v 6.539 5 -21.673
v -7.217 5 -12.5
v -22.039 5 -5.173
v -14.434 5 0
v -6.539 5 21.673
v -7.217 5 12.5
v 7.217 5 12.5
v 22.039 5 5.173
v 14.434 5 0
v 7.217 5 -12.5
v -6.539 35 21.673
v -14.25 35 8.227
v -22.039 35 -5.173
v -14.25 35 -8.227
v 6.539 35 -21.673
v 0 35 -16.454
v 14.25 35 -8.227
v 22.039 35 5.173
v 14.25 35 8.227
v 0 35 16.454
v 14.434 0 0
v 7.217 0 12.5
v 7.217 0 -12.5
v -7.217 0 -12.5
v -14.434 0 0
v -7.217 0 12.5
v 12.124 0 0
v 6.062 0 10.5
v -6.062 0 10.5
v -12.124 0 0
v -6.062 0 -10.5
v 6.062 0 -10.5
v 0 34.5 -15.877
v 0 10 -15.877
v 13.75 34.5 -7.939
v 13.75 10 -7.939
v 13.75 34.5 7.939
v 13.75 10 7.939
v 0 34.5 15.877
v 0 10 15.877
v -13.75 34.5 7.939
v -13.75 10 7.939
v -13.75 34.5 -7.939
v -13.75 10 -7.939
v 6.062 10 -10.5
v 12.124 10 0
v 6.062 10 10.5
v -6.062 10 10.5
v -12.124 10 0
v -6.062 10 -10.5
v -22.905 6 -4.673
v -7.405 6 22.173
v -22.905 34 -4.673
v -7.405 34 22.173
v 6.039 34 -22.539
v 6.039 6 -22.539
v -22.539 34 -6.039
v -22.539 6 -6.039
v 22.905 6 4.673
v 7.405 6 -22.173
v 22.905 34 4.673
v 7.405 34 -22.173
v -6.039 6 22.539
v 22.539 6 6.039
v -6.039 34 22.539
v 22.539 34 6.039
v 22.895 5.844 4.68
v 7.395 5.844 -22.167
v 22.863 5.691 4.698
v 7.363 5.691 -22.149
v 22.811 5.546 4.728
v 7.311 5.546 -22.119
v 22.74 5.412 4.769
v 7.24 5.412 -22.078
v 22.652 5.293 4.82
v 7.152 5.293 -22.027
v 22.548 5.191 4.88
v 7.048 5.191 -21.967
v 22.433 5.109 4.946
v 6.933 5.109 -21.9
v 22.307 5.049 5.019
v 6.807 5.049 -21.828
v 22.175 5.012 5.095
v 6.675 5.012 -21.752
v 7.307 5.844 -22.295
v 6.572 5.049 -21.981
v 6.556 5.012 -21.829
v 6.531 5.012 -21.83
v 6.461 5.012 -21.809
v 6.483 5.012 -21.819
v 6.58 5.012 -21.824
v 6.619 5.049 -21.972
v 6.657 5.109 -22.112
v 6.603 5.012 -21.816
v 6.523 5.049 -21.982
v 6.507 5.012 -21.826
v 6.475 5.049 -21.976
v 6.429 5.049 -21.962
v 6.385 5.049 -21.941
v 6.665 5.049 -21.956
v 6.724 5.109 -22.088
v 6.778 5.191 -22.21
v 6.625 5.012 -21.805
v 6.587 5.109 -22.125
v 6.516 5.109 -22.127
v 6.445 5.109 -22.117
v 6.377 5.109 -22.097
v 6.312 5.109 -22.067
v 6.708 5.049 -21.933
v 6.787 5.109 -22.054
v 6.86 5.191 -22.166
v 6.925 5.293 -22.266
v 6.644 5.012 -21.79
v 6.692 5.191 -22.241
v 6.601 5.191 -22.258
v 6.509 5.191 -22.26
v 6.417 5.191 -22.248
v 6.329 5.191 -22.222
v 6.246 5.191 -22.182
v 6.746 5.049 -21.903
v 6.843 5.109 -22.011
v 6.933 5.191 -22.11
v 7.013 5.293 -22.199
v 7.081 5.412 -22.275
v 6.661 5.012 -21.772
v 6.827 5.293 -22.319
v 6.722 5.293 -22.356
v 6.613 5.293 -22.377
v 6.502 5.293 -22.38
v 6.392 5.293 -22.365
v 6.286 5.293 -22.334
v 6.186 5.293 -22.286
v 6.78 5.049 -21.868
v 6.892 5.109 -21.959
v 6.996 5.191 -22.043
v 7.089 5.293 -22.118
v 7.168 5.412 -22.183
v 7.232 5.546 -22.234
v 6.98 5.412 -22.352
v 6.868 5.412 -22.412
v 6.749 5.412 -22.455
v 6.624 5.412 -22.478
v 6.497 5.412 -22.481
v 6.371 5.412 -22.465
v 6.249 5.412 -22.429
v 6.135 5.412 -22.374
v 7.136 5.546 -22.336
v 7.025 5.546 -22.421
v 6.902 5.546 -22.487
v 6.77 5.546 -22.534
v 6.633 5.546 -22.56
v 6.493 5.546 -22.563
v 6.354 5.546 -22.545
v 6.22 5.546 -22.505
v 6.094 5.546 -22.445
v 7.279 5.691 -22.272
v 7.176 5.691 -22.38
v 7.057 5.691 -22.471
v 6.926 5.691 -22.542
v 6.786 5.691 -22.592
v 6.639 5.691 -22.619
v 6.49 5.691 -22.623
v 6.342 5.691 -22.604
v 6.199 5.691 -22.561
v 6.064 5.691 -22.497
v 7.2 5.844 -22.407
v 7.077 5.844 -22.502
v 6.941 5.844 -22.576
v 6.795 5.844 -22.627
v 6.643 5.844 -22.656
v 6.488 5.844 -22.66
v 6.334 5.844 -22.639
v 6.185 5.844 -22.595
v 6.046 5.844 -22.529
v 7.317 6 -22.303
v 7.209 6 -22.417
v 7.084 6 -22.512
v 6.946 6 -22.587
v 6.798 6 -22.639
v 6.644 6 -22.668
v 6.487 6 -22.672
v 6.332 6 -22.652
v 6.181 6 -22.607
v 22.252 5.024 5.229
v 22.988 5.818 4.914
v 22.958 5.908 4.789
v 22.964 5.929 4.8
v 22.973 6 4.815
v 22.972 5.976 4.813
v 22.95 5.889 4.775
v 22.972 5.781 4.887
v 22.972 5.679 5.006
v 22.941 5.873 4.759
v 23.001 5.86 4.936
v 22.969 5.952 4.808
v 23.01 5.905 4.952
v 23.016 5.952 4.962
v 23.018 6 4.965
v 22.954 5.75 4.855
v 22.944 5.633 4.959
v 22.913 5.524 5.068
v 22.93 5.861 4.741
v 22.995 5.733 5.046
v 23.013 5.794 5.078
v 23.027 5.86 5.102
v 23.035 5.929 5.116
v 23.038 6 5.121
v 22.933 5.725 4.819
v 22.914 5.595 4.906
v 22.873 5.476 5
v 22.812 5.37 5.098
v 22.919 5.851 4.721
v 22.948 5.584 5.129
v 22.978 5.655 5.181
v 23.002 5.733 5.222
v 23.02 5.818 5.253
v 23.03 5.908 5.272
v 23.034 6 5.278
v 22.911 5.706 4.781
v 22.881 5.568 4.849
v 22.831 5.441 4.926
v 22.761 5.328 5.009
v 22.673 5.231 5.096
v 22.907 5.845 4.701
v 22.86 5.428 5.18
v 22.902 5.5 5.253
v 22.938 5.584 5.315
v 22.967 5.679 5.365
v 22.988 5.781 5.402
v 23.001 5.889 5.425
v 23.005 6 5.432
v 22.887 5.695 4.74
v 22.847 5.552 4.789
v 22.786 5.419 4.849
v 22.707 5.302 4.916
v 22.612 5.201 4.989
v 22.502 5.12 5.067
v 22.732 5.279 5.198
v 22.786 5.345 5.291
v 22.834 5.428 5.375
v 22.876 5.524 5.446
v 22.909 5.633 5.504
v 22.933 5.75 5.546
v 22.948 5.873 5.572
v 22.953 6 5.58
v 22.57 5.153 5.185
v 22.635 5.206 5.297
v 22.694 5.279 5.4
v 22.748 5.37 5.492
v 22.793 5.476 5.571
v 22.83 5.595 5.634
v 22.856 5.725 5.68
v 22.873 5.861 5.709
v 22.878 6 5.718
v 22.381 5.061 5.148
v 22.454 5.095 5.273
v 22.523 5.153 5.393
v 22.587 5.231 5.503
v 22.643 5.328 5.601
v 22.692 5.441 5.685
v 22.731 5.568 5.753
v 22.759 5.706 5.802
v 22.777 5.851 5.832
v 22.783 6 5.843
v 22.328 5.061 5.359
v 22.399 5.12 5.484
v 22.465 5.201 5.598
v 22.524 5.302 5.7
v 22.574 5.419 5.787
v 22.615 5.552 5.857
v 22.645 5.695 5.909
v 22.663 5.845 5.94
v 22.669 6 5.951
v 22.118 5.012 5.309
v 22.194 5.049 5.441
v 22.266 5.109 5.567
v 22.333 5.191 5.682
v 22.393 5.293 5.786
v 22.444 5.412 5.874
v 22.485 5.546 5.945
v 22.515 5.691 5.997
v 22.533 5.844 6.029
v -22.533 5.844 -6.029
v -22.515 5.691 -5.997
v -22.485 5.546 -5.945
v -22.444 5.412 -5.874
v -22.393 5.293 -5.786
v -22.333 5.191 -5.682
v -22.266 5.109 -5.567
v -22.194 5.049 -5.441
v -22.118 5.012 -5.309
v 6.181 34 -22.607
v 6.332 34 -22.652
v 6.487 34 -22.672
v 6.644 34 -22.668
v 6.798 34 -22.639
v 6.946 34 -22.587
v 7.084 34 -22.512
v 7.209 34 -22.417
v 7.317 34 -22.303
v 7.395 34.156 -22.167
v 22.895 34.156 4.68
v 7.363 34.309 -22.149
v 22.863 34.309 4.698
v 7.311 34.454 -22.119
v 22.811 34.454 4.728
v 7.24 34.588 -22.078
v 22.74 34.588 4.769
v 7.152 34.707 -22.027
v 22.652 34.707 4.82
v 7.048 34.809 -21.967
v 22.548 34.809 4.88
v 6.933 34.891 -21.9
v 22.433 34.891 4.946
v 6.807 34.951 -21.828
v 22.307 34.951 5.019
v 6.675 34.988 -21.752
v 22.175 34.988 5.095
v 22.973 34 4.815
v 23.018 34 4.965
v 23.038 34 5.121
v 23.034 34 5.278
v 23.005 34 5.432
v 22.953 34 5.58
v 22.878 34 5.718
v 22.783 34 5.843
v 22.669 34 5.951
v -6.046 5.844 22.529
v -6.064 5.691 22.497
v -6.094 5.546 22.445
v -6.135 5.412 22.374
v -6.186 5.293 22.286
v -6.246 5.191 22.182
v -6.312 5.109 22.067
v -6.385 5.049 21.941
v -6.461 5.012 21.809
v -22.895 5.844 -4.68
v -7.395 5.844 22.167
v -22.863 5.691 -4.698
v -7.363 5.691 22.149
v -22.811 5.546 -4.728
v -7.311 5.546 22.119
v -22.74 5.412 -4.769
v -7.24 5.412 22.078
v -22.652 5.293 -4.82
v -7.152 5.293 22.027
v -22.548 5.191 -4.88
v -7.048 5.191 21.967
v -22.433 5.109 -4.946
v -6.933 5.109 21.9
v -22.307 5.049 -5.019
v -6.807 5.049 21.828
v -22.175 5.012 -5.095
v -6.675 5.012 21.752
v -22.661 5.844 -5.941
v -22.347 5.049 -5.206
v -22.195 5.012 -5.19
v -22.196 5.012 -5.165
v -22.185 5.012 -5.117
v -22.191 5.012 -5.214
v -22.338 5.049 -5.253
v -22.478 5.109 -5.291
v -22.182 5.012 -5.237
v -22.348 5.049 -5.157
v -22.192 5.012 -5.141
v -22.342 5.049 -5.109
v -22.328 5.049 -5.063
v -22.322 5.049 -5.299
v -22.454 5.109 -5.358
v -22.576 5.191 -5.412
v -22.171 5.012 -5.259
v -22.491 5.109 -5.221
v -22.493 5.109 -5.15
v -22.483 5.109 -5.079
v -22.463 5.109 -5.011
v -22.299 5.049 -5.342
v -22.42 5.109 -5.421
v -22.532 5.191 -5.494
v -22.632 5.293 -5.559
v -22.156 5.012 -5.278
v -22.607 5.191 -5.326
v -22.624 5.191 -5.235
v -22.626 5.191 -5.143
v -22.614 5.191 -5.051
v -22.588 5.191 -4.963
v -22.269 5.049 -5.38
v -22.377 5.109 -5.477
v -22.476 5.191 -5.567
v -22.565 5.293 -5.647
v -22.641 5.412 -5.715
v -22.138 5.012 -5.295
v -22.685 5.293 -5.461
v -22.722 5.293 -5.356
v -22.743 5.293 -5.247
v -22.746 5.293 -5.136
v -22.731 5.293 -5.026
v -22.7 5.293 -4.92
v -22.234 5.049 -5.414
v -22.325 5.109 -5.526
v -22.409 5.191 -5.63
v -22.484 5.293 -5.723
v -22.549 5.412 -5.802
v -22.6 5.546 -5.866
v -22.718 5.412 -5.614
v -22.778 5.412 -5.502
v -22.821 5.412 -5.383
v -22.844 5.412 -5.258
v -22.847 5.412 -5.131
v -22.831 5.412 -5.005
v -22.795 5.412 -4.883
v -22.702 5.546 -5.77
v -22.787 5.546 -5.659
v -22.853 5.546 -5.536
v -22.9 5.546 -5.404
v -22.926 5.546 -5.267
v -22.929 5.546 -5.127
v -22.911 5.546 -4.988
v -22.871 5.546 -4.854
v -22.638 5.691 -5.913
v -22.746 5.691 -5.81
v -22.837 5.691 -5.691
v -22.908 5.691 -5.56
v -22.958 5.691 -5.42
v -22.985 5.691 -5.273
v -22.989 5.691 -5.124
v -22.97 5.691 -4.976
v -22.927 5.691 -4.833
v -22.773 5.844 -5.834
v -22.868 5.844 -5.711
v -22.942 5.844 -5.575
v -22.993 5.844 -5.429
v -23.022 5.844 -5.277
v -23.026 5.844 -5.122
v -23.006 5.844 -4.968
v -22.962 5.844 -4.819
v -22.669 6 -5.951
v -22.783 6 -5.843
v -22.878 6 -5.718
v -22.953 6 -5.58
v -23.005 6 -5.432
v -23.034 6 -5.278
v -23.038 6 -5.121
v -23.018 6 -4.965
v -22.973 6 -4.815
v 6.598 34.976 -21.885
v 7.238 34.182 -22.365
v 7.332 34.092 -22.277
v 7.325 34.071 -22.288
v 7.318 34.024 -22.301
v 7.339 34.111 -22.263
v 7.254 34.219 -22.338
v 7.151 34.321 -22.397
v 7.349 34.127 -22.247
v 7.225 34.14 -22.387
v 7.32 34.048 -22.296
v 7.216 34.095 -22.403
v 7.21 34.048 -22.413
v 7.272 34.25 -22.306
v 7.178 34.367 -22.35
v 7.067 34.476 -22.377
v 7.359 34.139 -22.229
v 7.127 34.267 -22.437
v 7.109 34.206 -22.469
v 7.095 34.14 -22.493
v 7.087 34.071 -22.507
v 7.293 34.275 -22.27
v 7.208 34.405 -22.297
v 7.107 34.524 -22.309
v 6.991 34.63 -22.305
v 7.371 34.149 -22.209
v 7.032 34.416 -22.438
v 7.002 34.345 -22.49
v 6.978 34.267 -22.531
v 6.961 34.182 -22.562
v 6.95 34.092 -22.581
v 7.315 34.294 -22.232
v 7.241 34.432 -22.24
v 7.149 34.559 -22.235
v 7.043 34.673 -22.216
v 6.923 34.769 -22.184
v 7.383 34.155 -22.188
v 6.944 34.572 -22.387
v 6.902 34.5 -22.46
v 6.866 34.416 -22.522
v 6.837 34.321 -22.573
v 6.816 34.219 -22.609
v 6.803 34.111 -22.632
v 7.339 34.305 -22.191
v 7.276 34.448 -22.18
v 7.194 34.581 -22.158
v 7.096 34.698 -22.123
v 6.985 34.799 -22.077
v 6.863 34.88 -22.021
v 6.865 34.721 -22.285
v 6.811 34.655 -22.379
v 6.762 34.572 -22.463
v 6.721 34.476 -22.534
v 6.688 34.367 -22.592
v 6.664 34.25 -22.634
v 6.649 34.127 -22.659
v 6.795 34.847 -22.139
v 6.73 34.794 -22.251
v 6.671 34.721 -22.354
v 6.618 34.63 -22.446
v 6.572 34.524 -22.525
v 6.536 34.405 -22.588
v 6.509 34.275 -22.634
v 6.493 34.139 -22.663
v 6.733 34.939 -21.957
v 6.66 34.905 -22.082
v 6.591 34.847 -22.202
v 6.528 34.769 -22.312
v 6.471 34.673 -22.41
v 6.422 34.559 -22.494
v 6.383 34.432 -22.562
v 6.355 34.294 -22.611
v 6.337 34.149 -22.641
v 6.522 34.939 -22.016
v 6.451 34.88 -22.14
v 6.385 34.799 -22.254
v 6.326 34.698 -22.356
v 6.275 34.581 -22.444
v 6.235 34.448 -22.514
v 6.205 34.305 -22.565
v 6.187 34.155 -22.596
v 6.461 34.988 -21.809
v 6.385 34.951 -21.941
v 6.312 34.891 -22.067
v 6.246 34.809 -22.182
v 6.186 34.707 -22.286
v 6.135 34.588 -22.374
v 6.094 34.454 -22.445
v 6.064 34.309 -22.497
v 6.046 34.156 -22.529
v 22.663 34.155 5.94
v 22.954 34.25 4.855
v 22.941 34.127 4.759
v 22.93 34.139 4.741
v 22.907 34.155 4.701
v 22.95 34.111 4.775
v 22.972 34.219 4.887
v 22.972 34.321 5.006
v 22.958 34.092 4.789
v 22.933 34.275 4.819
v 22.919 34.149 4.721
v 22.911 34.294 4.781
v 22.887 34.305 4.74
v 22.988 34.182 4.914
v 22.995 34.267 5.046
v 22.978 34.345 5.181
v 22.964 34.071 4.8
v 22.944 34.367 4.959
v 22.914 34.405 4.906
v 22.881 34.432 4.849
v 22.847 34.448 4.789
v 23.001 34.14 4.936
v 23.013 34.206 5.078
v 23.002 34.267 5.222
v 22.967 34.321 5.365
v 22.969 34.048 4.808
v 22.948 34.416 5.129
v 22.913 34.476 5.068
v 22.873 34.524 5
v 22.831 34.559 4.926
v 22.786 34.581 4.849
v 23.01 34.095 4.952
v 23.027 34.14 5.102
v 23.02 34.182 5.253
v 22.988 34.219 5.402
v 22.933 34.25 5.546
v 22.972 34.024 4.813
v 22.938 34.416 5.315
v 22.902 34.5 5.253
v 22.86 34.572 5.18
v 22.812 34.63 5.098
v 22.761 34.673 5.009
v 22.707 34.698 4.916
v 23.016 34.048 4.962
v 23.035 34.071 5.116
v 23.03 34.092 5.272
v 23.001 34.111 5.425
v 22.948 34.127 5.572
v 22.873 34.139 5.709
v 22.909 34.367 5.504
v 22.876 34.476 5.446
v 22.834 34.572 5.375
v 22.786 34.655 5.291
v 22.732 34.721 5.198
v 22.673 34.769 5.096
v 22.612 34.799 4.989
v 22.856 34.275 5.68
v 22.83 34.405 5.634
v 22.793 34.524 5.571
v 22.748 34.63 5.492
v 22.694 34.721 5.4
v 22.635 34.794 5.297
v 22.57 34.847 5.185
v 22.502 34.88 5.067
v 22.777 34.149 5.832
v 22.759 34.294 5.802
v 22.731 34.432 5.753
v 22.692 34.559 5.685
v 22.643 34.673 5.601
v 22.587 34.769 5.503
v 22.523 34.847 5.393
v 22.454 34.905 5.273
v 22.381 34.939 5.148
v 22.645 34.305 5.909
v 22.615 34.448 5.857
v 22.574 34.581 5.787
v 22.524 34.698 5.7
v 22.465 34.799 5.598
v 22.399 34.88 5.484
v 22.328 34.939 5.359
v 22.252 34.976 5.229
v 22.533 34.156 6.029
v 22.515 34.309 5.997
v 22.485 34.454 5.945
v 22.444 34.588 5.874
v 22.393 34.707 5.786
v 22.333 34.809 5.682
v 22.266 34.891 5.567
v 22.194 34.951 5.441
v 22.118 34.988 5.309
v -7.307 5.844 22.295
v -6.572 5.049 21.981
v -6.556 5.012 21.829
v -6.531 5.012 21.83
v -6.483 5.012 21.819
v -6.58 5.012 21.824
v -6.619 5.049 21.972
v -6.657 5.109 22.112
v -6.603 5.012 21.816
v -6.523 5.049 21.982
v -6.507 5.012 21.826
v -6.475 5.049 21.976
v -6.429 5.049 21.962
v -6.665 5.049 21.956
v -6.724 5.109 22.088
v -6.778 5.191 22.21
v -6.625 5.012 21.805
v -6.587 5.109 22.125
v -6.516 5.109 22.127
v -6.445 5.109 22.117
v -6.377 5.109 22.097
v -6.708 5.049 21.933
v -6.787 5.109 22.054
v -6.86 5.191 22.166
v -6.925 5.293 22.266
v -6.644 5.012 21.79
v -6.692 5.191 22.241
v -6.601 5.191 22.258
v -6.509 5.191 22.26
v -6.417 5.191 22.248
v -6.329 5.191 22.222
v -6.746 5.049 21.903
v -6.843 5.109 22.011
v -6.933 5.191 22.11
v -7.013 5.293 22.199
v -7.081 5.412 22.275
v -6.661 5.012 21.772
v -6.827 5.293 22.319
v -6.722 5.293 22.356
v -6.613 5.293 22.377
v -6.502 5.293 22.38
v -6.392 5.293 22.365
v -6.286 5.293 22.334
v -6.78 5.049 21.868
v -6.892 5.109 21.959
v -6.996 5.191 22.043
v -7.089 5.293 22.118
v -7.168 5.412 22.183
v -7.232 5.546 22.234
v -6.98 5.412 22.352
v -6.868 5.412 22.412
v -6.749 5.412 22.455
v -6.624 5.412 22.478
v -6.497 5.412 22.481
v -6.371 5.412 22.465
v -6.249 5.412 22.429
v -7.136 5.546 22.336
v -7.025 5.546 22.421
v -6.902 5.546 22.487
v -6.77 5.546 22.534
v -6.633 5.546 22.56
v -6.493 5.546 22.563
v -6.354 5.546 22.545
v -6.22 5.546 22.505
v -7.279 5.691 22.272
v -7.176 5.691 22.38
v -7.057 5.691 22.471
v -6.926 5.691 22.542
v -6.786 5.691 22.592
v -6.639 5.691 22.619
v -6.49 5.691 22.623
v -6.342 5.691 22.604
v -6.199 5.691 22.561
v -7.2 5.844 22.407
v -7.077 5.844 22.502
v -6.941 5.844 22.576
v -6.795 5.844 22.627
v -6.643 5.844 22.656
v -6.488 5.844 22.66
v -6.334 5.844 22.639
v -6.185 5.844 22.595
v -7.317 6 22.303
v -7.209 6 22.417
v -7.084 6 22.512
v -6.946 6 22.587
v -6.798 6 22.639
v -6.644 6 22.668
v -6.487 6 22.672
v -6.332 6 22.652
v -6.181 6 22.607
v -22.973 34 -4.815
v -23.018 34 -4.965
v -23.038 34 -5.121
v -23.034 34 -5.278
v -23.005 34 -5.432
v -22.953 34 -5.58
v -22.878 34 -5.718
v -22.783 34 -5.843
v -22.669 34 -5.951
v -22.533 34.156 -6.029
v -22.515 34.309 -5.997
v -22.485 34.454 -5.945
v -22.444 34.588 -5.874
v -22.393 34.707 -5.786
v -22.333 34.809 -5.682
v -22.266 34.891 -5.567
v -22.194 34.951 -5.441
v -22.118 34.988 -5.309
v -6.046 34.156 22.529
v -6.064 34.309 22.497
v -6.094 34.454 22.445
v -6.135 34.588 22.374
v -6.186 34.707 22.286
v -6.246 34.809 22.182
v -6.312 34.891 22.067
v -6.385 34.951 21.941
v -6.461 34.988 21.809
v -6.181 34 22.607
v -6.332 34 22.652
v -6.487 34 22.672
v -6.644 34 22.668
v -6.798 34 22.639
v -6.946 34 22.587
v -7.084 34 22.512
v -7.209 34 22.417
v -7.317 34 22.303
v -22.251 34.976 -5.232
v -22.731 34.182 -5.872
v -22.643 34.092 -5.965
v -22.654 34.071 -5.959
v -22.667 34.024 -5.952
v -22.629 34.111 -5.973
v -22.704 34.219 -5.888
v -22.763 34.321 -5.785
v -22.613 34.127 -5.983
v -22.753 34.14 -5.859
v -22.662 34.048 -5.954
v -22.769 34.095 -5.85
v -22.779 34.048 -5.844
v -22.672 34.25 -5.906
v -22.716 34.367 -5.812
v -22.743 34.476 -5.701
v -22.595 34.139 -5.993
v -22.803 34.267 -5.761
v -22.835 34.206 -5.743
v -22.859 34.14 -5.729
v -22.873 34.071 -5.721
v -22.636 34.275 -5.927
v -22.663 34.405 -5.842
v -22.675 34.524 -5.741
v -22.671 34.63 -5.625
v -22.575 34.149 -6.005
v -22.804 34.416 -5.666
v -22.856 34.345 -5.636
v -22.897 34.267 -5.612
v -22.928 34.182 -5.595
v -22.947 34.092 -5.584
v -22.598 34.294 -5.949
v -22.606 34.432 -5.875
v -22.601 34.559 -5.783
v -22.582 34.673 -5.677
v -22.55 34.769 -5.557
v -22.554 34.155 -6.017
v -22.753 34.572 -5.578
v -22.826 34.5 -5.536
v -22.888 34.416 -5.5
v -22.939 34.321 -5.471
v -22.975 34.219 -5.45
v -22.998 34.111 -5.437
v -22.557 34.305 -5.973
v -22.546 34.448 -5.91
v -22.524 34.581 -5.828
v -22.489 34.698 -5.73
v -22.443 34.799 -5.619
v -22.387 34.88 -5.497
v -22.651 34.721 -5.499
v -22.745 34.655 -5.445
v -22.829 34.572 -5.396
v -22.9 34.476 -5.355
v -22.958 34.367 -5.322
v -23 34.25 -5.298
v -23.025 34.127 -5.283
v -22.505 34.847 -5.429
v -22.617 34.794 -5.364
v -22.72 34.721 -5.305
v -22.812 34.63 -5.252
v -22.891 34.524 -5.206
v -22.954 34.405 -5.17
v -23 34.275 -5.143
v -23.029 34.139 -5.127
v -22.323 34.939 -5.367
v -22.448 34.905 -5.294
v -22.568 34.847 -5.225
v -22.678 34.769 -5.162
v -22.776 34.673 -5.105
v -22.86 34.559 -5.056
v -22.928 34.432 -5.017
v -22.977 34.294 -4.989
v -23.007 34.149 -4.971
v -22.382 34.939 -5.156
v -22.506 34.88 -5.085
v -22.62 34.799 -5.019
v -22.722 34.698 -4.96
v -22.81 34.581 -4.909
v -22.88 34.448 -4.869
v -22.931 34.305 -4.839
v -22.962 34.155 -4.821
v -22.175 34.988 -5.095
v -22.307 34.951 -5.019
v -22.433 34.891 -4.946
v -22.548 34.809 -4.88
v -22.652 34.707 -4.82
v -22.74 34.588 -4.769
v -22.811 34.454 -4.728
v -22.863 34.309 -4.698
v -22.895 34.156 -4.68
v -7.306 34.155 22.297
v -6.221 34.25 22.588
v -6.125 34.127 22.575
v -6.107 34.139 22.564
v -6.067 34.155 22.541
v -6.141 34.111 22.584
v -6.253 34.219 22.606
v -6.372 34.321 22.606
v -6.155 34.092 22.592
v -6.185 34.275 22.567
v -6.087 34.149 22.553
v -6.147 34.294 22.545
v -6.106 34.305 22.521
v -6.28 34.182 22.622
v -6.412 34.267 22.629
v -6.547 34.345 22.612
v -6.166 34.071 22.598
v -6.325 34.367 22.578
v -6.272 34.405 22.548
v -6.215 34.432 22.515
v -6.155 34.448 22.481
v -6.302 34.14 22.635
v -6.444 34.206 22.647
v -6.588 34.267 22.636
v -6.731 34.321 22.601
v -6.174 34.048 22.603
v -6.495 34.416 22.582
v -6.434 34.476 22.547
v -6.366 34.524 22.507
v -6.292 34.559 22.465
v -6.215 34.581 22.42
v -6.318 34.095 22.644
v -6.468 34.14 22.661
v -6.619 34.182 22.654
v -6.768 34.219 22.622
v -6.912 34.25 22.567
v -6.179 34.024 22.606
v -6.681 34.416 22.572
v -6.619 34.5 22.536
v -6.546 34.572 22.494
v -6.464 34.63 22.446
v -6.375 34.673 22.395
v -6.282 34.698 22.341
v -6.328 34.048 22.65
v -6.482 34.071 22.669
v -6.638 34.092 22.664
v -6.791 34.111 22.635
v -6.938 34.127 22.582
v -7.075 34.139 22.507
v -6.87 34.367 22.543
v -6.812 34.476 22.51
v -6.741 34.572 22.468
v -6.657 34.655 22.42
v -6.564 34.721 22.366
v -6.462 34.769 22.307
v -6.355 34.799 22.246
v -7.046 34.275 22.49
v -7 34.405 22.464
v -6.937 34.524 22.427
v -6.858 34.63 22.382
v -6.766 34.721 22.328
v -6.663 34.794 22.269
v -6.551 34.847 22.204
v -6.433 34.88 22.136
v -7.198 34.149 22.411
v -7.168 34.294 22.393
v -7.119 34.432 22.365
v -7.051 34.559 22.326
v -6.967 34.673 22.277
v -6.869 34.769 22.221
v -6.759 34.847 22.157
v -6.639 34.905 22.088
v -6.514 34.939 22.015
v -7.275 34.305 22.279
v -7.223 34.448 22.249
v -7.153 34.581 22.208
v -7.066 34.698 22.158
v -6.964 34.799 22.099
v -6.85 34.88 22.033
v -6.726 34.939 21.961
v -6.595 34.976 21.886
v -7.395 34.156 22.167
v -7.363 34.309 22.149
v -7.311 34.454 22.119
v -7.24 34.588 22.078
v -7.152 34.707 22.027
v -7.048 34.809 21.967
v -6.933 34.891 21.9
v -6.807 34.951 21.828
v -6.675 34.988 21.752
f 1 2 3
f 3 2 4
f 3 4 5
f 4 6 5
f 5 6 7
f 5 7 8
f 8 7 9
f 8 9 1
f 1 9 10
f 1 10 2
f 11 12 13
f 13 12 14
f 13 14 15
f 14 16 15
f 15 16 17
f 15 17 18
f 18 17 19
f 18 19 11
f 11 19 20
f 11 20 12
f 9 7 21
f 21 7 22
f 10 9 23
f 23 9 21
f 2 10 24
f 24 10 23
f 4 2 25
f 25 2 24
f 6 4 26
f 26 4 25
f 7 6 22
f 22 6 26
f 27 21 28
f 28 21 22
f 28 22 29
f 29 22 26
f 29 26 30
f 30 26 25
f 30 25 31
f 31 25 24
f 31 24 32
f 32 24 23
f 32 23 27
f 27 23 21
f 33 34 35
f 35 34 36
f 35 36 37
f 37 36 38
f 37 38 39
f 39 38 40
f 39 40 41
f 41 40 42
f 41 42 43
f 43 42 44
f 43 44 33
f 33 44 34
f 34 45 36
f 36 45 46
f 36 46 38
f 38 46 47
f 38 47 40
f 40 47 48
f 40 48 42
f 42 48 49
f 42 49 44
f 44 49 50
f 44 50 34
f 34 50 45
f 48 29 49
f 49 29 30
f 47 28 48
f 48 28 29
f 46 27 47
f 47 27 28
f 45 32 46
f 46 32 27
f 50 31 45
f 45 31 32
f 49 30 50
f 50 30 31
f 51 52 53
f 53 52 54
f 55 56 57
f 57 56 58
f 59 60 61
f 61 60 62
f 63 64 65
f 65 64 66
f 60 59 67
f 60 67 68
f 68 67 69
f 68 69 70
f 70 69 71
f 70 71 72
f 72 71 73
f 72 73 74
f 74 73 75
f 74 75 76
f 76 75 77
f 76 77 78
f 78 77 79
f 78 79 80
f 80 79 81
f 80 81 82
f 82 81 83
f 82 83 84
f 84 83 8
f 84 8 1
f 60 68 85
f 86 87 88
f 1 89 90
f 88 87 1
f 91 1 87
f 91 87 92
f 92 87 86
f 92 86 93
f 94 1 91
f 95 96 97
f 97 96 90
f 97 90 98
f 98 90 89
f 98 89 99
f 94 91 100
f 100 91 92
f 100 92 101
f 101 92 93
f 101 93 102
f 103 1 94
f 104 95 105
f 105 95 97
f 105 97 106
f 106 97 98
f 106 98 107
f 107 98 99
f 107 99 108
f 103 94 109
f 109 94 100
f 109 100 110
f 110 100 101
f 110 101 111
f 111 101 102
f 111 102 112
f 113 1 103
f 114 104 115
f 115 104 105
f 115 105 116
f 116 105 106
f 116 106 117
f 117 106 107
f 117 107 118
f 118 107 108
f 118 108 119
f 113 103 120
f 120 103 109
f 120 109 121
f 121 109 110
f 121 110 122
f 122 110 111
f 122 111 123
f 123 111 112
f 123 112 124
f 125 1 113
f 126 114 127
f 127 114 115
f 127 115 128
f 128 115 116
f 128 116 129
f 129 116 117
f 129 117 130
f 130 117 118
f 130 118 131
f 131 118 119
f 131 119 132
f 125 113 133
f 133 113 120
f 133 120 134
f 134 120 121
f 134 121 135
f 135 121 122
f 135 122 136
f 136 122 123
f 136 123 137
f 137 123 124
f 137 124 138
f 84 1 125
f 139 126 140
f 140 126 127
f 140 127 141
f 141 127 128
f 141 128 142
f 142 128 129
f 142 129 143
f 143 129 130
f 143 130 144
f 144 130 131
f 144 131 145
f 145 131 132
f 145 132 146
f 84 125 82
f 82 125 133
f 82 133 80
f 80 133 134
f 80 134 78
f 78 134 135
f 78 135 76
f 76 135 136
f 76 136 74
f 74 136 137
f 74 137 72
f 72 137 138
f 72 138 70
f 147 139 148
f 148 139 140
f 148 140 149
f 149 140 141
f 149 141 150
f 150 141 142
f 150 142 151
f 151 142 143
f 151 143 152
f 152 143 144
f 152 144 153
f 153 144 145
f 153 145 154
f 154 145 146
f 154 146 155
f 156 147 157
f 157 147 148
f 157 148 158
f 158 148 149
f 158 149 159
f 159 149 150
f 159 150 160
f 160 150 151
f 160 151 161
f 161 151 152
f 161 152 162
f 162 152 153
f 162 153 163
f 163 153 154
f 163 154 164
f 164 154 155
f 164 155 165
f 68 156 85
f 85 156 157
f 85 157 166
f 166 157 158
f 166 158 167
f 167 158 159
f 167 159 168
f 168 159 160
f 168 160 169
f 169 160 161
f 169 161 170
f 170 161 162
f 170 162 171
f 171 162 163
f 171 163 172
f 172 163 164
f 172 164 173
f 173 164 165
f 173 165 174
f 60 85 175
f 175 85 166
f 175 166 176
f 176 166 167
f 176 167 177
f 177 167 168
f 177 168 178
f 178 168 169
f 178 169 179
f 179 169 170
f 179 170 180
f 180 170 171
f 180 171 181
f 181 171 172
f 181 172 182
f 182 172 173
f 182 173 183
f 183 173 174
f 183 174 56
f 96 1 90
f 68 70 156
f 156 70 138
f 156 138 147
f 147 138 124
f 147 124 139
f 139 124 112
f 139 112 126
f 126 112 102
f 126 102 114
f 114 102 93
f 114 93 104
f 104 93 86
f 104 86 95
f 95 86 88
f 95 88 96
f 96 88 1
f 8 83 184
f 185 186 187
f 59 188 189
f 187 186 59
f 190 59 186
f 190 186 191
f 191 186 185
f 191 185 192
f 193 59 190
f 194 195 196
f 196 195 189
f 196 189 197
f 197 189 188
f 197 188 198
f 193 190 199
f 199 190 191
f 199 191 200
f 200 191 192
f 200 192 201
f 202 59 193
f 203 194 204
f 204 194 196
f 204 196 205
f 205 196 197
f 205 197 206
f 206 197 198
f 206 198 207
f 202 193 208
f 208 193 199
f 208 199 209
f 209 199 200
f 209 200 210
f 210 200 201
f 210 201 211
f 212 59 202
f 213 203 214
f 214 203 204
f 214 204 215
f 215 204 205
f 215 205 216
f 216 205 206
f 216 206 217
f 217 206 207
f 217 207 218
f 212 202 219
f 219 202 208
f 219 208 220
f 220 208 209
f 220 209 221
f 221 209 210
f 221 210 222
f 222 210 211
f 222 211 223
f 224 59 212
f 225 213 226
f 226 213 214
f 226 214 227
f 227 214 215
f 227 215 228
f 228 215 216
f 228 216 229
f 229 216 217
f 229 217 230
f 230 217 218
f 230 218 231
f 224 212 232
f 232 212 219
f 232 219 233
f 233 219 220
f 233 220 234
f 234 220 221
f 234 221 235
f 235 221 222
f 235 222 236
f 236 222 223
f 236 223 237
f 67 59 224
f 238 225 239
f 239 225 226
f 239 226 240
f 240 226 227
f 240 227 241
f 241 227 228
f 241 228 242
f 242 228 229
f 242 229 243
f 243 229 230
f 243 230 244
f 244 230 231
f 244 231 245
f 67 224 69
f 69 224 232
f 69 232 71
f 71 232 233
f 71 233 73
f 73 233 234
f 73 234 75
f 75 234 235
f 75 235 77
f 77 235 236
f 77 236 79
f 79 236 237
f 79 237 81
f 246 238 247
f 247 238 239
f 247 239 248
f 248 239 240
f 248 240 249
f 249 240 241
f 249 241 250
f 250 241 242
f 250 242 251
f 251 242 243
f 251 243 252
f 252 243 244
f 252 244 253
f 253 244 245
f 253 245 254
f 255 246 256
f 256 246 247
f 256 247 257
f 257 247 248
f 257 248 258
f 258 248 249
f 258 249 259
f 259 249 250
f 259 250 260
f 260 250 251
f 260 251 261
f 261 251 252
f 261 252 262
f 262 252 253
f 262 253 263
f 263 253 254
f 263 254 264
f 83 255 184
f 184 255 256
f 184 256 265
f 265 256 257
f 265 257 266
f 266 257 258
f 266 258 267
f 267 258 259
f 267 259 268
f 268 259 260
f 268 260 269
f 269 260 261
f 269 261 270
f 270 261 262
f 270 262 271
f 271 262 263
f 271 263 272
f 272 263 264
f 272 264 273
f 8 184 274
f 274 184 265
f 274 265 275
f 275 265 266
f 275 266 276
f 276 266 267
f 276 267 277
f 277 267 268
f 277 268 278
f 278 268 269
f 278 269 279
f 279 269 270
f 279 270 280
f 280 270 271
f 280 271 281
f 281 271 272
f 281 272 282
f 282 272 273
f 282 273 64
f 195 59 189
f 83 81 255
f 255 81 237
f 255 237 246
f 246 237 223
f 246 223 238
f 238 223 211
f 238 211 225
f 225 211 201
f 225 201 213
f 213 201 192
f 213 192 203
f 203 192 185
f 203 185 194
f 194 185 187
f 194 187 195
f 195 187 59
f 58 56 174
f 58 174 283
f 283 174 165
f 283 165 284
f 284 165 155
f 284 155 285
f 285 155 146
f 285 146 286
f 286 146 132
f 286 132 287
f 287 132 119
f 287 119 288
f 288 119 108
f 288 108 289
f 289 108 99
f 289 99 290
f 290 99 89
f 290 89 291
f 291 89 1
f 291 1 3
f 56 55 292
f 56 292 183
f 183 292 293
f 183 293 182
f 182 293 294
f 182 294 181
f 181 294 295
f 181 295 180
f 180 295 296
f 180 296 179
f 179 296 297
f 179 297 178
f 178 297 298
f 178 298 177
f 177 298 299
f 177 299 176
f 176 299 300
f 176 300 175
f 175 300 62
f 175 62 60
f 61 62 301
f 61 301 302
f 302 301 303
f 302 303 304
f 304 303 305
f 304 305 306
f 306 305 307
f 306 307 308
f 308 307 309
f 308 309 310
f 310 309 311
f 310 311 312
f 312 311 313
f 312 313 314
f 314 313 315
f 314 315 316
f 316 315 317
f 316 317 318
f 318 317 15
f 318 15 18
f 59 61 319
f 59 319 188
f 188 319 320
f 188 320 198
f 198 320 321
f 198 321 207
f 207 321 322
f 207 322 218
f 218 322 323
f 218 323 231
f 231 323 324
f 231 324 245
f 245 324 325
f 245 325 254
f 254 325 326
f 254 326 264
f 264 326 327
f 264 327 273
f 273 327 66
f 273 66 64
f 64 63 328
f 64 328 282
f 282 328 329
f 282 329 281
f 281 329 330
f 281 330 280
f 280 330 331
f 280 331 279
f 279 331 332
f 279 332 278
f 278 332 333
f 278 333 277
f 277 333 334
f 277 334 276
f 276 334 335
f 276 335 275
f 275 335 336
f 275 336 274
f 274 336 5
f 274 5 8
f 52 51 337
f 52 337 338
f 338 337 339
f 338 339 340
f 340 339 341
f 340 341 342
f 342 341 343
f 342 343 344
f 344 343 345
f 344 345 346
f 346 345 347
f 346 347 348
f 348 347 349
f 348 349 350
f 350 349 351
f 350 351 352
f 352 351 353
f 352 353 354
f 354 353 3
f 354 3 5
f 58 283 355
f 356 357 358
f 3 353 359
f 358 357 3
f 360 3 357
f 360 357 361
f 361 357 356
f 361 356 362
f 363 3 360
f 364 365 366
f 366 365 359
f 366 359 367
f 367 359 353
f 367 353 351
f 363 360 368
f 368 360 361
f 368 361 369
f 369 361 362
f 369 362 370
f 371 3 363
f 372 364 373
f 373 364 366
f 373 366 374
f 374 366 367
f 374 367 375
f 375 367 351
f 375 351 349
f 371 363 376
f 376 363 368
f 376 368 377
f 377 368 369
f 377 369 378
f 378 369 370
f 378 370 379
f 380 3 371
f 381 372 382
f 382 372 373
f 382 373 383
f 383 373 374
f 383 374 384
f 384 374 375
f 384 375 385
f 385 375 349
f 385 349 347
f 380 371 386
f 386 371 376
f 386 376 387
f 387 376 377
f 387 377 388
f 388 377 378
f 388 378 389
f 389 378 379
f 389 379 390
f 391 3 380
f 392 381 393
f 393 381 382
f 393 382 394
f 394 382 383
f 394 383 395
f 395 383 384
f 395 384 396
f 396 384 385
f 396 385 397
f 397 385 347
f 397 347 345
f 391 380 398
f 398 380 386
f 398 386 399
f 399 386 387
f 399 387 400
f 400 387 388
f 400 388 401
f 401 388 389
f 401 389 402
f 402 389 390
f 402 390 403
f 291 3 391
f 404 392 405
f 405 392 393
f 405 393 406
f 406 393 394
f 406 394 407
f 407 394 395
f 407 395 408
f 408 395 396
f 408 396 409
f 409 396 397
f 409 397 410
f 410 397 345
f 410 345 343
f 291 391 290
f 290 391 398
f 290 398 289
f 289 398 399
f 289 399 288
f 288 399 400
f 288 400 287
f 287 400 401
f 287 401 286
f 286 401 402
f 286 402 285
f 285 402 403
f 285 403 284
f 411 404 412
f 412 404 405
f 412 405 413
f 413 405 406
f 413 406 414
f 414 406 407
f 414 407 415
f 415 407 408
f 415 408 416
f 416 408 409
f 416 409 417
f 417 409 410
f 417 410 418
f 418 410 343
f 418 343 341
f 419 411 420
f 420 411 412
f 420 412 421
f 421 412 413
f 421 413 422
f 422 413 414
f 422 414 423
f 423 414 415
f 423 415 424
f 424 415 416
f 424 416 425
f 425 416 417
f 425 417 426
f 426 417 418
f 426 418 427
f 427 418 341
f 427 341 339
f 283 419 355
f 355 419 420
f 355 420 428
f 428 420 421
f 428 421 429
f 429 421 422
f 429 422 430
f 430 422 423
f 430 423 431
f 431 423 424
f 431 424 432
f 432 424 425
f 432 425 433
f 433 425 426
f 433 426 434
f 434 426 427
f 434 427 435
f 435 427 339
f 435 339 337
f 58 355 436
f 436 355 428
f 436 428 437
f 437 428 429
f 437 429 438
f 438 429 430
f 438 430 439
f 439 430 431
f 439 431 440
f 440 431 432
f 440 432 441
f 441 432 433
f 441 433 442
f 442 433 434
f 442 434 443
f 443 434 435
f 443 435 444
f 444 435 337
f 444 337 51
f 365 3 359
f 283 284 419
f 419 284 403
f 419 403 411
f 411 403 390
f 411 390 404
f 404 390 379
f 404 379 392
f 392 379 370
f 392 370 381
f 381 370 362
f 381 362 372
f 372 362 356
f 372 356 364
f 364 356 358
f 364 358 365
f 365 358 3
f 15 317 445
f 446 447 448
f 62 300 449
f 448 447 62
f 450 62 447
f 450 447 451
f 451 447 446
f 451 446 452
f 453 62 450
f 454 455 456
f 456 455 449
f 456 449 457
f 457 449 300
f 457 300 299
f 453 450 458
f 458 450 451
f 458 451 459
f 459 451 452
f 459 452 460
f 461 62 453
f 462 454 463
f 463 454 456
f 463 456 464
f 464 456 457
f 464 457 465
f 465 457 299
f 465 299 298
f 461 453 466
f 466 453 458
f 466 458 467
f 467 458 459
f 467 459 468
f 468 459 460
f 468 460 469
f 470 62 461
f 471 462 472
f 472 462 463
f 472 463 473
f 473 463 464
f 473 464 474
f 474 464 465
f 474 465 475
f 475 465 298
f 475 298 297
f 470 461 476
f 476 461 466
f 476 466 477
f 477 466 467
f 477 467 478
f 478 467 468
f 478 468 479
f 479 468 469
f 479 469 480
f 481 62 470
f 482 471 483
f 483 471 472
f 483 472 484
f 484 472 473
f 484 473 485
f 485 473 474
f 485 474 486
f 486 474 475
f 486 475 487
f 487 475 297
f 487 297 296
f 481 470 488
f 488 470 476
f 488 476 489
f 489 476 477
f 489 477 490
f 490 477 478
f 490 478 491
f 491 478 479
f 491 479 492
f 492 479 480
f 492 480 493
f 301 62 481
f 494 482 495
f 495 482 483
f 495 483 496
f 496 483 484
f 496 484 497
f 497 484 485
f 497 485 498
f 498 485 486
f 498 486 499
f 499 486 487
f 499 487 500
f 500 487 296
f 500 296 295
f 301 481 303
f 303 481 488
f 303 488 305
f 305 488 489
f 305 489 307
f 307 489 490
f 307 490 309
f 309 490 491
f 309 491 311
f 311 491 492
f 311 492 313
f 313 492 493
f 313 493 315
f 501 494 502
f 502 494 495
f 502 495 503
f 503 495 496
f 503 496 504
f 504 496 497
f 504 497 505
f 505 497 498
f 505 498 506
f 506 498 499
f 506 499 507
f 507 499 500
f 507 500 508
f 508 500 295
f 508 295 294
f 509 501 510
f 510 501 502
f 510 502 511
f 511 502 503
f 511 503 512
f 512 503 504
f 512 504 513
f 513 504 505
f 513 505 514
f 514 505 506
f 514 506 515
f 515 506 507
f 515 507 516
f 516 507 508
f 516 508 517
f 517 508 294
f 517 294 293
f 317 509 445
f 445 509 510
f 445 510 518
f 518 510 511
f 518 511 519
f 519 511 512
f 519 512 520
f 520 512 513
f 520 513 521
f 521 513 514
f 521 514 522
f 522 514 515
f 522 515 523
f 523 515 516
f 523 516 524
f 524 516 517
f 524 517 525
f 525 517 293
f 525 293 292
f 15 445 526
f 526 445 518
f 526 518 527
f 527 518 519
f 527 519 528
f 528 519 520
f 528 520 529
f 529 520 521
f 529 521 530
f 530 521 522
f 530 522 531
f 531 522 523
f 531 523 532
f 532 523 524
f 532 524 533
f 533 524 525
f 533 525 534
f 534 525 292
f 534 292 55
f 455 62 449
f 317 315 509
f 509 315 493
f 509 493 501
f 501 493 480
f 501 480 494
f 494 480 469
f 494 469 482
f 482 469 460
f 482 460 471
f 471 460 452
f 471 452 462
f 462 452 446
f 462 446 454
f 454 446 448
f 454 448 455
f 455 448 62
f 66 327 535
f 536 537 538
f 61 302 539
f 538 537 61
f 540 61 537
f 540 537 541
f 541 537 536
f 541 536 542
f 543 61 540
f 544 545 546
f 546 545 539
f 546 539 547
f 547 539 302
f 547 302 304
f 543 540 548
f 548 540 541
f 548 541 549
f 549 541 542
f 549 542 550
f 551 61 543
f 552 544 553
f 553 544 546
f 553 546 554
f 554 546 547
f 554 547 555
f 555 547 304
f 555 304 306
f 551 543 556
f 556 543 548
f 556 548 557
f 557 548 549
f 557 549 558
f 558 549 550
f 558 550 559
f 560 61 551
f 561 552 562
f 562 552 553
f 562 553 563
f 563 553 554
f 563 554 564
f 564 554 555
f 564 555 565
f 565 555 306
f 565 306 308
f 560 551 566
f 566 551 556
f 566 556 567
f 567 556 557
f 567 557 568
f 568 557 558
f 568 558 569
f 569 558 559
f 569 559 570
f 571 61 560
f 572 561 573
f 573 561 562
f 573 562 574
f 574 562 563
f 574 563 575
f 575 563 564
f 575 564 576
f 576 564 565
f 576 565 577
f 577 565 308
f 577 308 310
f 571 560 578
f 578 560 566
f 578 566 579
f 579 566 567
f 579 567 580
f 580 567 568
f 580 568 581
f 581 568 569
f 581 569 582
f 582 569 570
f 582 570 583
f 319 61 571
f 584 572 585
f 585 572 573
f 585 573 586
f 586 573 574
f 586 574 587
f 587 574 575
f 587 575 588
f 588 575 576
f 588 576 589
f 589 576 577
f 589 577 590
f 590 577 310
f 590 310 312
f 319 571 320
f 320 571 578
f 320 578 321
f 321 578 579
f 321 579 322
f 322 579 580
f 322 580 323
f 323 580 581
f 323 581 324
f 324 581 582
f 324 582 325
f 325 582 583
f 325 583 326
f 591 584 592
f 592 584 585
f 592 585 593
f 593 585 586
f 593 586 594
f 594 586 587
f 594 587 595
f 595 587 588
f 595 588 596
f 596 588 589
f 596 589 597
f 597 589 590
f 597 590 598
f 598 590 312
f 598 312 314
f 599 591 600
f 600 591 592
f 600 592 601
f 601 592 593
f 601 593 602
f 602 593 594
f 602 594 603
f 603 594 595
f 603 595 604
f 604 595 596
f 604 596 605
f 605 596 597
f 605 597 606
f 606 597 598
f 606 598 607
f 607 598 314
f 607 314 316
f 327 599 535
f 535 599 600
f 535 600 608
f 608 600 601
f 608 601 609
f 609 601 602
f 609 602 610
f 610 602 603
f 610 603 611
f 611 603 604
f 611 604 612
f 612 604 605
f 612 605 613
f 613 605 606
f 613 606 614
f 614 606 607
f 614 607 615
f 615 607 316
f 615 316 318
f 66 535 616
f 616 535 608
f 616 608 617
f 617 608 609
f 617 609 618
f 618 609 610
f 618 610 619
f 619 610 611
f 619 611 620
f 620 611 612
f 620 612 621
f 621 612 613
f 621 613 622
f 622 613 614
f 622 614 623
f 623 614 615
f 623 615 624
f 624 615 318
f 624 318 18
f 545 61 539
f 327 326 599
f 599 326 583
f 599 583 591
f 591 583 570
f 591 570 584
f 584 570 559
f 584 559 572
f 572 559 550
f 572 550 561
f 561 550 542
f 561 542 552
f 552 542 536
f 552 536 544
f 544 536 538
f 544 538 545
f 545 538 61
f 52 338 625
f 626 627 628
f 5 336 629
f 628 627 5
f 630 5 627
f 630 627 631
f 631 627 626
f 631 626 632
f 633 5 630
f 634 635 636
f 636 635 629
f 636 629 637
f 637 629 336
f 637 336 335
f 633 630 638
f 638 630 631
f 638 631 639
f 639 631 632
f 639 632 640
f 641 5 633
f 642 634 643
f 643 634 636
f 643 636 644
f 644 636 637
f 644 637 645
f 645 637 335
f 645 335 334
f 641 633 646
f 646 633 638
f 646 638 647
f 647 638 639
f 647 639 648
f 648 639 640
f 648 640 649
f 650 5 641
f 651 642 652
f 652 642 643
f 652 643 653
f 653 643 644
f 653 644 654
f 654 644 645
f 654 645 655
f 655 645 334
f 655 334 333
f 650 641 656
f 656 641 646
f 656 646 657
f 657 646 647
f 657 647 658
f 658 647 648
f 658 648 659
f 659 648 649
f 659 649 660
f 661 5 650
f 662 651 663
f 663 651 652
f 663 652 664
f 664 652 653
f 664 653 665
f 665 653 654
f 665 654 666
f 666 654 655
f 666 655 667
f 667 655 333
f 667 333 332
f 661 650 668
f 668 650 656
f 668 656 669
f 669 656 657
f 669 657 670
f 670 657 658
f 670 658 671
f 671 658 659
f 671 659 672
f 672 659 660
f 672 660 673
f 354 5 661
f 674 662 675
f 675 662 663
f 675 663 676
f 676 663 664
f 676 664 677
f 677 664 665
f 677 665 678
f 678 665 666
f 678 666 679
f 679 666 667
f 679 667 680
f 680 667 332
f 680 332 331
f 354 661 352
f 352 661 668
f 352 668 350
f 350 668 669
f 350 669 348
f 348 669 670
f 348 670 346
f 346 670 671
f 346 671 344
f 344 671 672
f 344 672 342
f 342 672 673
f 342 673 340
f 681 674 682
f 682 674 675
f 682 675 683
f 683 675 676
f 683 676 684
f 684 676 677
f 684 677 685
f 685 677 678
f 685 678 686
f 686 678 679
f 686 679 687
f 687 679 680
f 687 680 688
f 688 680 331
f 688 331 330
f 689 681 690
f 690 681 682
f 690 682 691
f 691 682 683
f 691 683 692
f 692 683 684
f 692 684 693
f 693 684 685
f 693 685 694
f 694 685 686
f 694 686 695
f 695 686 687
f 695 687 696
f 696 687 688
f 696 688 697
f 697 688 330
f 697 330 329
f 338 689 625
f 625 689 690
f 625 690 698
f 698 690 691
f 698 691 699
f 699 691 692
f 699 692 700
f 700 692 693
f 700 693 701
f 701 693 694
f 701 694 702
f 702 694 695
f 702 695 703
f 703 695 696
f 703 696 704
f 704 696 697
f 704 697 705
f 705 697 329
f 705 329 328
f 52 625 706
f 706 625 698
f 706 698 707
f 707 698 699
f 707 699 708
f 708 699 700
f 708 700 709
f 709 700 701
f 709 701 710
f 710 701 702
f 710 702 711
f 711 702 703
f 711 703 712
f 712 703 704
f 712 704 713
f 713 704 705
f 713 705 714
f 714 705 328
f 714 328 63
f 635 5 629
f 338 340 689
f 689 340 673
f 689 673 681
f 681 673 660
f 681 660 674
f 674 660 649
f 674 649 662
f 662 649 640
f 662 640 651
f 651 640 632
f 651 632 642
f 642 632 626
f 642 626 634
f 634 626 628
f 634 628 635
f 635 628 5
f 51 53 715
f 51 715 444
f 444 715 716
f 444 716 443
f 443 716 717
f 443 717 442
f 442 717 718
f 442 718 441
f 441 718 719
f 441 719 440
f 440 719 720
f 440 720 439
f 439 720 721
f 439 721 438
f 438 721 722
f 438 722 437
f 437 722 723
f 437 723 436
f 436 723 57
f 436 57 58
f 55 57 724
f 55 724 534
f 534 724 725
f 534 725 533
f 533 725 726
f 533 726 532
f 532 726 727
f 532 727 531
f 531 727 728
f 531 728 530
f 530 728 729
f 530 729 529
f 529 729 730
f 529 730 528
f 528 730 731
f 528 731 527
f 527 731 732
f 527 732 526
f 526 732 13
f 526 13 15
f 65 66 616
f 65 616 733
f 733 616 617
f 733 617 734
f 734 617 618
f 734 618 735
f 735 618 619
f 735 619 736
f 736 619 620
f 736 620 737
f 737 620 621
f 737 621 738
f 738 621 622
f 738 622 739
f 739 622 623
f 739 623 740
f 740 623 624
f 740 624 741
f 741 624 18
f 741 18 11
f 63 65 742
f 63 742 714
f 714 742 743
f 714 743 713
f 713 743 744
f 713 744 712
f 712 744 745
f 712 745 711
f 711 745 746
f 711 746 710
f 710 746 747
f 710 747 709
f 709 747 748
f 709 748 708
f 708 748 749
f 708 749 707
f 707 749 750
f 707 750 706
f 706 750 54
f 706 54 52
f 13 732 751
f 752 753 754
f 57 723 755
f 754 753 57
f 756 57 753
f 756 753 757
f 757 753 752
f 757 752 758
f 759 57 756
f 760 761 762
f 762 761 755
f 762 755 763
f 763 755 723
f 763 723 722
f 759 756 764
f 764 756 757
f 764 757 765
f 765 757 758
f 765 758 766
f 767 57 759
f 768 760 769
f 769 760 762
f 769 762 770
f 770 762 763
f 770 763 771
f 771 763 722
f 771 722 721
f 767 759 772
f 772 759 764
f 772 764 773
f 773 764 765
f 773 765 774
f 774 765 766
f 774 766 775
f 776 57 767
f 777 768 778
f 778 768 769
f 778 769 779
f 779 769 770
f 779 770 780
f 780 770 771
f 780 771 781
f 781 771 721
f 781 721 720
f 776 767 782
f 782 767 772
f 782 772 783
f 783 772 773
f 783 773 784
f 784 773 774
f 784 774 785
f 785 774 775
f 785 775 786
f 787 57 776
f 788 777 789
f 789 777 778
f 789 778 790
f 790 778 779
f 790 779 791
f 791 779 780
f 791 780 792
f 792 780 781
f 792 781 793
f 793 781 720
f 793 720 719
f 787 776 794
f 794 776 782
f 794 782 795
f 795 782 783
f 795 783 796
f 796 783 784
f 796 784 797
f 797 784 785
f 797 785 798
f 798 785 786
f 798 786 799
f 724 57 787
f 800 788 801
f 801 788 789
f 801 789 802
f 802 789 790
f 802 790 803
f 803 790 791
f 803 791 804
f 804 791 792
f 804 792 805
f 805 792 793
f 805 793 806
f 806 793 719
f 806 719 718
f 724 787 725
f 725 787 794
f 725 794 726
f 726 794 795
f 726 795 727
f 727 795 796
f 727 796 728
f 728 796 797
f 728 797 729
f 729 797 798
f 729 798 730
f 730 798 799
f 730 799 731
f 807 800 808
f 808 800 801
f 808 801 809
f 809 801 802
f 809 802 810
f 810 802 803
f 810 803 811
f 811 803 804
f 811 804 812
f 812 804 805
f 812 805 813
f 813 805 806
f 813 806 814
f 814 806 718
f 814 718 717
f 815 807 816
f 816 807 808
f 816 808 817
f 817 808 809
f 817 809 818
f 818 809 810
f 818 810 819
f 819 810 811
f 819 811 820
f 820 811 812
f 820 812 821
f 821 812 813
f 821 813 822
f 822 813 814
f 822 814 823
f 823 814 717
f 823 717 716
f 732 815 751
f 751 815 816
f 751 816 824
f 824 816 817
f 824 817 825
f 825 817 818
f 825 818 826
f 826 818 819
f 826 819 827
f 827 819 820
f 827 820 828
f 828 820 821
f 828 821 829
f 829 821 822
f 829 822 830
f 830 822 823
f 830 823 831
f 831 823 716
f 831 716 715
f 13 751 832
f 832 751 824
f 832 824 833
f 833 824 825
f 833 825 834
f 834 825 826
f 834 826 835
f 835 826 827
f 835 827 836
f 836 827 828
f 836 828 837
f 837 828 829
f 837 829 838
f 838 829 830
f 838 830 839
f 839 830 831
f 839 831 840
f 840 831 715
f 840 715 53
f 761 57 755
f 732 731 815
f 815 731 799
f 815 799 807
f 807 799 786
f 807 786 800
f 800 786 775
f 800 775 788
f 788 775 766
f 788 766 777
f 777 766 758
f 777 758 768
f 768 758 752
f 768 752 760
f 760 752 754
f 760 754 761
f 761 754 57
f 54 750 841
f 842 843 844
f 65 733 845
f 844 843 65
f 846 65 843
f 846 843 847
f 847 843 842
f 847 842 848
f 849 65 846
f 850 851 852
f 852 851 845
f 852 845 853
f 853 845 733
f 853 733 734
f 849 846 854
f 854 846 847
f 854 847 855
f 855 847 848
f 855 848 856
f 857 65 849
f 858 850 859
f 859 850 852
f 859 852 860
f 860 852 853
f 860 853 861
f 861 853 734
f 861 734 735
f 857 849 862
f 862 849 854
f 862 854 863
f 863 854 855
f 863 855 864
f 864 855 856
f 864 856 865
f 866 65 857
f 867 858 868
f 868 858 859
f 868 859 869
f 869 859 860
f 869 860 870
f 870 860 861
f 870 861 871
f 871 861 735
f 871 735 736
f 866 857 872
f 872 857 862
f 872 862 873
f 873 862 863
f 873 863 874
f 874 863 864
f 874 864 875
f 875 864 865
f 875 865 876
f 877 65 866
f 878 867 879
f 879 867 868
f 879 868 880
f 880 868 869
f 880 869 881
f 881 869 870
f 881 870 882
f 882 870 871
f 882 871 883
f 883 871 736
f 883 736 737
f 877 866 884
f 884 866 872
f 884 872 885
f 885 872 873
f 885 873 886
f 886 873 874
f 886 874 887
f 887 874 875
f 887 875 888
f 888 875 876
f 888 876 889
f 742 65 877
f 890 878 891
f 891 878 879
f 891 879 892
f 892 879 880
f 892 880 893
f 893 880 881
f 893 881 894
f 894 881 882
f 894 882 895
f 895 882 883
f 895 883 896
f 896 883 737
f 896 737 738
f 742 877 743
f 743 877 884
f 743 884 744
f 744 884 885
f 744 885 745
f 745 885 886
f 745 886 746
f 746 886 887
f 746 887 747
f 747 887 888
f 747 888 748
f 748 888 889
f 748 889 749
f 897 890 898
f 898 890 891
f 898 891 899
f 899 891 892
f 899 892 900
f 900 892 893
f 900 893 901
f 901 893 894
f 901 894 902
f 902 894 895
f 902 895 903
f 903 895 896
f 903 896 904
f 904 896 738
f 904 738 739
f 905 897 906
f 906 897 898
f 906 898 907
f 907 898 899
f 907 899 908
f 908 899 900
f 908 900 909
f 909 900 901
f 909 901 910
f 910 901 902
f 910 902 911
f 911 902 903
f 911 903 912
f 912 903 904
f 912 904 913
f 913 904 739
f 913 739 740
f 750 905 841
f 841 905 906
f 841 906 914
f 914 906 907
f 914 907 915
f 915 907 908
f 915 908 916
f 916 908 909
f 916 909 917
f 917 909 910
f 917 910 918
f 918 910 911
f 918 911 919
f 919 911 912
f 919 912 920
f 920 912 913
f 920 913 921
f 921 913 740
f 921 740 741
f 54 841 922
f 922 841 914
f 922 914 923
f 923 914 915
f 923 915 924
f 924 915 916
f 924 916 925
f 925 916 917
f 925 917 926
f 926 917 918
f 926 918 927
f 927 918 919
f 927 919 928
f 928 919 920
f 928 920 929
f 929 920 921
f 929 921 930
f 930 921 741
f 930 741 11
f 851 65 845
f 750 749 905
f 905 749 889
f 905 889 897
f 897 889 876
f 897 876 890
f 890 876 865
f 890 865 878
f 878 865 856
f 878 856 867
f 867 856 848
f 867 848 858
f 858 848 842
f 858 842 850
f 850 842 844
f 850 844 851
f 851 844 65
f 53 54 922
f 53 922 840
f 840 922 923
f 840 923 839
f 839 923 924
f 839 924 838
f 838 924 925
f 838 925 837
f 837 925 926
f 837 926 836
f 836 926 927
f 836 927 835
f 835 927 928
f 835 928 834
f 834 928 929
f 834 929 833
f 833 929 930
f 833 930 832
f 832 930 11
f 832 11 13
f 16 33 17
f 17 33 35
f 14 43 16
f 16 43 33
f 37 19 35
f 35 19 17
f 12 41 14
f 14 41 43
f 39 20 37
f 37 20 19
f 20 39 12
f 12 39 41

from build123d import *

# Parameters (mm, degrees)
BOSS_EXTRUDE1_DEPTH     = 5
SKETCH4_W               = 50
SKETCH4_H               = 50
BOSS_EXTRUDE2_DEPTH     = 30
CUT_EXTRUDE1_DEPTH      = 25
CUT_EXTRUDE2_DEPTH      = 50.749371855
CUT_EXTRUDE2_DEPTH_BACK = 50.749371855
CUT_EXTRUDE3_DEPTH      = 50.749371855
CUT_EXTRUDE3_DEPTH_BACK = 50.749371855
SKETCH7_W               = 50
SKETCH7_H               = 50
FILLET2_R               = 1
CHAMFER1_SIZE           = 0.5


with BuildPart() as part:
    # Sketch3 → Boss-Extrude1 (new body)
    with BuildSketch(Plane(origin=(0, 0, 0), x_dir=(1, 0, 0), z_dir=(0, 1, 0))):
        Polygon((14.43375673, 0), (7.216878365, 12.5), (-7.216878365, 12.5), (-14.43375673, 0), (-7.216878365, -12.5), (7.216878365, -12.5), align=None)
    extrude(amount=BOSS_EXTRUDE1_DEPTH)

    # Sketch4 → Boss-Extrude2 (add)
    with BuildSketch(Plane(origin=(0, 5, 0), x_dir=(1, 0, 0), z_dir=(0, 1, 0))):
        Rectangle(SKETCH4_W, SKETCH4_H)
    extrude(amount=BOSS_EXTRUDE2_DEPTH)

    # Sketch5 → Cut-Extrude1 (cut)
    with BuildSketch(Plane(origin=(0, 35, 0), x_dir=(1, 0, 0), z_dir=(0, 1, 0))):
        Polygon((0, 15.877132403), (-13.75, 7.938566201), (-13.75, -7.938566201), (0, -15.877132403), (13.75, -7.938566201), (13.75, 7.938566201), align=None)
    extrude(amount=-CUT_EXTRUDE1_DEPTH, mode=Mode.SUBTRACT)

    # Sketch6 → Cut-Extrude2 (cut, two sides: drawn at the far end of the back side and taken through both)
    with BuildSketch(Plane.XZ.offset(-CUT_EXTRUDE2_DEPTH_BACK)):
        Polygon((-12.124355653, 0), (-6.062177826, -10.5), (6.062177826, -10.5), (12.124355653, 0), (6.062177826, 10.5), (-6.062177826, 10.5), align=None)
    extrude(amount=CUT_EXTRUDE2_DEPTH + CUT_EXTRUDE2_DEPTH_BACK, mode=Mode.SUBTRACT)

    # Sketch7 → Cut-Extrude3 (cut, two sides: drawn at the far end of the back side and taken through both)
    with BuildSketch(Plane(origin=(0, 35, 0), x_dir=(1, 0, 0), z_dir=(0, 1, 0)).offset(-CUT_EXTRUDE3_DEPTH_BACK)):
        Rectangle(SKETCH7_W, SKETCH7_H)
        Polygon((-23.405444566, 5.539419162), (6.905444566, 23.039419162), (23.405444566, -5.539419162), (-6.905444566, -23.039419162), align=None, mode=Mode.SUBTRACT)
    extrude(amount=CUT_EXTRUDE3_DEPTH + CUT_EXTRUDE3_DEPTH_BACK, mode=Mode.SUBTRACT)

    # Fillet2
    fillet2_edges = [part.edges().sort_by_distance(p)[0] for p in [
        (-15.155444566, 5, 8.75),
        (-8.25, 5, -14.289419162),
        (15.155444566, 5, -8.75),
        (8.25, 5, 14.289419162),
        (-23.405444566, 20, -5.539419162),
        (-15.155444566, 35, 8.75),
        (6.905444566, 20, -23.039419162),
        (-8.25, 35, -14.289419162),
        (23.405444566, 20, 5.539419162),
        (15.155444566, 35, -8.75),
        (-6.905444566, 20, 23.039419162),
        (8.25, 35, 14.289419162),
    ]]
    fillet(fillet2_edges, radius=FILLET2_R)

    # Chamfer1
    chamfer1_edges = [part.edges().sort_by_distance(p)[0] for p in [
        (6.875, 35, -11.907849302),
        (-6.875, 35, -11.907849302),
        (-13.75, 35, 0),
        (-6.875, 35, 11.907849302),
        (6.875, 35, 11.907849302),
        (13.75, 35, 0),
    ]]
    chamfer(chamfer1_edges, length=CHAMFER1_SIZE)


solid = part.part
